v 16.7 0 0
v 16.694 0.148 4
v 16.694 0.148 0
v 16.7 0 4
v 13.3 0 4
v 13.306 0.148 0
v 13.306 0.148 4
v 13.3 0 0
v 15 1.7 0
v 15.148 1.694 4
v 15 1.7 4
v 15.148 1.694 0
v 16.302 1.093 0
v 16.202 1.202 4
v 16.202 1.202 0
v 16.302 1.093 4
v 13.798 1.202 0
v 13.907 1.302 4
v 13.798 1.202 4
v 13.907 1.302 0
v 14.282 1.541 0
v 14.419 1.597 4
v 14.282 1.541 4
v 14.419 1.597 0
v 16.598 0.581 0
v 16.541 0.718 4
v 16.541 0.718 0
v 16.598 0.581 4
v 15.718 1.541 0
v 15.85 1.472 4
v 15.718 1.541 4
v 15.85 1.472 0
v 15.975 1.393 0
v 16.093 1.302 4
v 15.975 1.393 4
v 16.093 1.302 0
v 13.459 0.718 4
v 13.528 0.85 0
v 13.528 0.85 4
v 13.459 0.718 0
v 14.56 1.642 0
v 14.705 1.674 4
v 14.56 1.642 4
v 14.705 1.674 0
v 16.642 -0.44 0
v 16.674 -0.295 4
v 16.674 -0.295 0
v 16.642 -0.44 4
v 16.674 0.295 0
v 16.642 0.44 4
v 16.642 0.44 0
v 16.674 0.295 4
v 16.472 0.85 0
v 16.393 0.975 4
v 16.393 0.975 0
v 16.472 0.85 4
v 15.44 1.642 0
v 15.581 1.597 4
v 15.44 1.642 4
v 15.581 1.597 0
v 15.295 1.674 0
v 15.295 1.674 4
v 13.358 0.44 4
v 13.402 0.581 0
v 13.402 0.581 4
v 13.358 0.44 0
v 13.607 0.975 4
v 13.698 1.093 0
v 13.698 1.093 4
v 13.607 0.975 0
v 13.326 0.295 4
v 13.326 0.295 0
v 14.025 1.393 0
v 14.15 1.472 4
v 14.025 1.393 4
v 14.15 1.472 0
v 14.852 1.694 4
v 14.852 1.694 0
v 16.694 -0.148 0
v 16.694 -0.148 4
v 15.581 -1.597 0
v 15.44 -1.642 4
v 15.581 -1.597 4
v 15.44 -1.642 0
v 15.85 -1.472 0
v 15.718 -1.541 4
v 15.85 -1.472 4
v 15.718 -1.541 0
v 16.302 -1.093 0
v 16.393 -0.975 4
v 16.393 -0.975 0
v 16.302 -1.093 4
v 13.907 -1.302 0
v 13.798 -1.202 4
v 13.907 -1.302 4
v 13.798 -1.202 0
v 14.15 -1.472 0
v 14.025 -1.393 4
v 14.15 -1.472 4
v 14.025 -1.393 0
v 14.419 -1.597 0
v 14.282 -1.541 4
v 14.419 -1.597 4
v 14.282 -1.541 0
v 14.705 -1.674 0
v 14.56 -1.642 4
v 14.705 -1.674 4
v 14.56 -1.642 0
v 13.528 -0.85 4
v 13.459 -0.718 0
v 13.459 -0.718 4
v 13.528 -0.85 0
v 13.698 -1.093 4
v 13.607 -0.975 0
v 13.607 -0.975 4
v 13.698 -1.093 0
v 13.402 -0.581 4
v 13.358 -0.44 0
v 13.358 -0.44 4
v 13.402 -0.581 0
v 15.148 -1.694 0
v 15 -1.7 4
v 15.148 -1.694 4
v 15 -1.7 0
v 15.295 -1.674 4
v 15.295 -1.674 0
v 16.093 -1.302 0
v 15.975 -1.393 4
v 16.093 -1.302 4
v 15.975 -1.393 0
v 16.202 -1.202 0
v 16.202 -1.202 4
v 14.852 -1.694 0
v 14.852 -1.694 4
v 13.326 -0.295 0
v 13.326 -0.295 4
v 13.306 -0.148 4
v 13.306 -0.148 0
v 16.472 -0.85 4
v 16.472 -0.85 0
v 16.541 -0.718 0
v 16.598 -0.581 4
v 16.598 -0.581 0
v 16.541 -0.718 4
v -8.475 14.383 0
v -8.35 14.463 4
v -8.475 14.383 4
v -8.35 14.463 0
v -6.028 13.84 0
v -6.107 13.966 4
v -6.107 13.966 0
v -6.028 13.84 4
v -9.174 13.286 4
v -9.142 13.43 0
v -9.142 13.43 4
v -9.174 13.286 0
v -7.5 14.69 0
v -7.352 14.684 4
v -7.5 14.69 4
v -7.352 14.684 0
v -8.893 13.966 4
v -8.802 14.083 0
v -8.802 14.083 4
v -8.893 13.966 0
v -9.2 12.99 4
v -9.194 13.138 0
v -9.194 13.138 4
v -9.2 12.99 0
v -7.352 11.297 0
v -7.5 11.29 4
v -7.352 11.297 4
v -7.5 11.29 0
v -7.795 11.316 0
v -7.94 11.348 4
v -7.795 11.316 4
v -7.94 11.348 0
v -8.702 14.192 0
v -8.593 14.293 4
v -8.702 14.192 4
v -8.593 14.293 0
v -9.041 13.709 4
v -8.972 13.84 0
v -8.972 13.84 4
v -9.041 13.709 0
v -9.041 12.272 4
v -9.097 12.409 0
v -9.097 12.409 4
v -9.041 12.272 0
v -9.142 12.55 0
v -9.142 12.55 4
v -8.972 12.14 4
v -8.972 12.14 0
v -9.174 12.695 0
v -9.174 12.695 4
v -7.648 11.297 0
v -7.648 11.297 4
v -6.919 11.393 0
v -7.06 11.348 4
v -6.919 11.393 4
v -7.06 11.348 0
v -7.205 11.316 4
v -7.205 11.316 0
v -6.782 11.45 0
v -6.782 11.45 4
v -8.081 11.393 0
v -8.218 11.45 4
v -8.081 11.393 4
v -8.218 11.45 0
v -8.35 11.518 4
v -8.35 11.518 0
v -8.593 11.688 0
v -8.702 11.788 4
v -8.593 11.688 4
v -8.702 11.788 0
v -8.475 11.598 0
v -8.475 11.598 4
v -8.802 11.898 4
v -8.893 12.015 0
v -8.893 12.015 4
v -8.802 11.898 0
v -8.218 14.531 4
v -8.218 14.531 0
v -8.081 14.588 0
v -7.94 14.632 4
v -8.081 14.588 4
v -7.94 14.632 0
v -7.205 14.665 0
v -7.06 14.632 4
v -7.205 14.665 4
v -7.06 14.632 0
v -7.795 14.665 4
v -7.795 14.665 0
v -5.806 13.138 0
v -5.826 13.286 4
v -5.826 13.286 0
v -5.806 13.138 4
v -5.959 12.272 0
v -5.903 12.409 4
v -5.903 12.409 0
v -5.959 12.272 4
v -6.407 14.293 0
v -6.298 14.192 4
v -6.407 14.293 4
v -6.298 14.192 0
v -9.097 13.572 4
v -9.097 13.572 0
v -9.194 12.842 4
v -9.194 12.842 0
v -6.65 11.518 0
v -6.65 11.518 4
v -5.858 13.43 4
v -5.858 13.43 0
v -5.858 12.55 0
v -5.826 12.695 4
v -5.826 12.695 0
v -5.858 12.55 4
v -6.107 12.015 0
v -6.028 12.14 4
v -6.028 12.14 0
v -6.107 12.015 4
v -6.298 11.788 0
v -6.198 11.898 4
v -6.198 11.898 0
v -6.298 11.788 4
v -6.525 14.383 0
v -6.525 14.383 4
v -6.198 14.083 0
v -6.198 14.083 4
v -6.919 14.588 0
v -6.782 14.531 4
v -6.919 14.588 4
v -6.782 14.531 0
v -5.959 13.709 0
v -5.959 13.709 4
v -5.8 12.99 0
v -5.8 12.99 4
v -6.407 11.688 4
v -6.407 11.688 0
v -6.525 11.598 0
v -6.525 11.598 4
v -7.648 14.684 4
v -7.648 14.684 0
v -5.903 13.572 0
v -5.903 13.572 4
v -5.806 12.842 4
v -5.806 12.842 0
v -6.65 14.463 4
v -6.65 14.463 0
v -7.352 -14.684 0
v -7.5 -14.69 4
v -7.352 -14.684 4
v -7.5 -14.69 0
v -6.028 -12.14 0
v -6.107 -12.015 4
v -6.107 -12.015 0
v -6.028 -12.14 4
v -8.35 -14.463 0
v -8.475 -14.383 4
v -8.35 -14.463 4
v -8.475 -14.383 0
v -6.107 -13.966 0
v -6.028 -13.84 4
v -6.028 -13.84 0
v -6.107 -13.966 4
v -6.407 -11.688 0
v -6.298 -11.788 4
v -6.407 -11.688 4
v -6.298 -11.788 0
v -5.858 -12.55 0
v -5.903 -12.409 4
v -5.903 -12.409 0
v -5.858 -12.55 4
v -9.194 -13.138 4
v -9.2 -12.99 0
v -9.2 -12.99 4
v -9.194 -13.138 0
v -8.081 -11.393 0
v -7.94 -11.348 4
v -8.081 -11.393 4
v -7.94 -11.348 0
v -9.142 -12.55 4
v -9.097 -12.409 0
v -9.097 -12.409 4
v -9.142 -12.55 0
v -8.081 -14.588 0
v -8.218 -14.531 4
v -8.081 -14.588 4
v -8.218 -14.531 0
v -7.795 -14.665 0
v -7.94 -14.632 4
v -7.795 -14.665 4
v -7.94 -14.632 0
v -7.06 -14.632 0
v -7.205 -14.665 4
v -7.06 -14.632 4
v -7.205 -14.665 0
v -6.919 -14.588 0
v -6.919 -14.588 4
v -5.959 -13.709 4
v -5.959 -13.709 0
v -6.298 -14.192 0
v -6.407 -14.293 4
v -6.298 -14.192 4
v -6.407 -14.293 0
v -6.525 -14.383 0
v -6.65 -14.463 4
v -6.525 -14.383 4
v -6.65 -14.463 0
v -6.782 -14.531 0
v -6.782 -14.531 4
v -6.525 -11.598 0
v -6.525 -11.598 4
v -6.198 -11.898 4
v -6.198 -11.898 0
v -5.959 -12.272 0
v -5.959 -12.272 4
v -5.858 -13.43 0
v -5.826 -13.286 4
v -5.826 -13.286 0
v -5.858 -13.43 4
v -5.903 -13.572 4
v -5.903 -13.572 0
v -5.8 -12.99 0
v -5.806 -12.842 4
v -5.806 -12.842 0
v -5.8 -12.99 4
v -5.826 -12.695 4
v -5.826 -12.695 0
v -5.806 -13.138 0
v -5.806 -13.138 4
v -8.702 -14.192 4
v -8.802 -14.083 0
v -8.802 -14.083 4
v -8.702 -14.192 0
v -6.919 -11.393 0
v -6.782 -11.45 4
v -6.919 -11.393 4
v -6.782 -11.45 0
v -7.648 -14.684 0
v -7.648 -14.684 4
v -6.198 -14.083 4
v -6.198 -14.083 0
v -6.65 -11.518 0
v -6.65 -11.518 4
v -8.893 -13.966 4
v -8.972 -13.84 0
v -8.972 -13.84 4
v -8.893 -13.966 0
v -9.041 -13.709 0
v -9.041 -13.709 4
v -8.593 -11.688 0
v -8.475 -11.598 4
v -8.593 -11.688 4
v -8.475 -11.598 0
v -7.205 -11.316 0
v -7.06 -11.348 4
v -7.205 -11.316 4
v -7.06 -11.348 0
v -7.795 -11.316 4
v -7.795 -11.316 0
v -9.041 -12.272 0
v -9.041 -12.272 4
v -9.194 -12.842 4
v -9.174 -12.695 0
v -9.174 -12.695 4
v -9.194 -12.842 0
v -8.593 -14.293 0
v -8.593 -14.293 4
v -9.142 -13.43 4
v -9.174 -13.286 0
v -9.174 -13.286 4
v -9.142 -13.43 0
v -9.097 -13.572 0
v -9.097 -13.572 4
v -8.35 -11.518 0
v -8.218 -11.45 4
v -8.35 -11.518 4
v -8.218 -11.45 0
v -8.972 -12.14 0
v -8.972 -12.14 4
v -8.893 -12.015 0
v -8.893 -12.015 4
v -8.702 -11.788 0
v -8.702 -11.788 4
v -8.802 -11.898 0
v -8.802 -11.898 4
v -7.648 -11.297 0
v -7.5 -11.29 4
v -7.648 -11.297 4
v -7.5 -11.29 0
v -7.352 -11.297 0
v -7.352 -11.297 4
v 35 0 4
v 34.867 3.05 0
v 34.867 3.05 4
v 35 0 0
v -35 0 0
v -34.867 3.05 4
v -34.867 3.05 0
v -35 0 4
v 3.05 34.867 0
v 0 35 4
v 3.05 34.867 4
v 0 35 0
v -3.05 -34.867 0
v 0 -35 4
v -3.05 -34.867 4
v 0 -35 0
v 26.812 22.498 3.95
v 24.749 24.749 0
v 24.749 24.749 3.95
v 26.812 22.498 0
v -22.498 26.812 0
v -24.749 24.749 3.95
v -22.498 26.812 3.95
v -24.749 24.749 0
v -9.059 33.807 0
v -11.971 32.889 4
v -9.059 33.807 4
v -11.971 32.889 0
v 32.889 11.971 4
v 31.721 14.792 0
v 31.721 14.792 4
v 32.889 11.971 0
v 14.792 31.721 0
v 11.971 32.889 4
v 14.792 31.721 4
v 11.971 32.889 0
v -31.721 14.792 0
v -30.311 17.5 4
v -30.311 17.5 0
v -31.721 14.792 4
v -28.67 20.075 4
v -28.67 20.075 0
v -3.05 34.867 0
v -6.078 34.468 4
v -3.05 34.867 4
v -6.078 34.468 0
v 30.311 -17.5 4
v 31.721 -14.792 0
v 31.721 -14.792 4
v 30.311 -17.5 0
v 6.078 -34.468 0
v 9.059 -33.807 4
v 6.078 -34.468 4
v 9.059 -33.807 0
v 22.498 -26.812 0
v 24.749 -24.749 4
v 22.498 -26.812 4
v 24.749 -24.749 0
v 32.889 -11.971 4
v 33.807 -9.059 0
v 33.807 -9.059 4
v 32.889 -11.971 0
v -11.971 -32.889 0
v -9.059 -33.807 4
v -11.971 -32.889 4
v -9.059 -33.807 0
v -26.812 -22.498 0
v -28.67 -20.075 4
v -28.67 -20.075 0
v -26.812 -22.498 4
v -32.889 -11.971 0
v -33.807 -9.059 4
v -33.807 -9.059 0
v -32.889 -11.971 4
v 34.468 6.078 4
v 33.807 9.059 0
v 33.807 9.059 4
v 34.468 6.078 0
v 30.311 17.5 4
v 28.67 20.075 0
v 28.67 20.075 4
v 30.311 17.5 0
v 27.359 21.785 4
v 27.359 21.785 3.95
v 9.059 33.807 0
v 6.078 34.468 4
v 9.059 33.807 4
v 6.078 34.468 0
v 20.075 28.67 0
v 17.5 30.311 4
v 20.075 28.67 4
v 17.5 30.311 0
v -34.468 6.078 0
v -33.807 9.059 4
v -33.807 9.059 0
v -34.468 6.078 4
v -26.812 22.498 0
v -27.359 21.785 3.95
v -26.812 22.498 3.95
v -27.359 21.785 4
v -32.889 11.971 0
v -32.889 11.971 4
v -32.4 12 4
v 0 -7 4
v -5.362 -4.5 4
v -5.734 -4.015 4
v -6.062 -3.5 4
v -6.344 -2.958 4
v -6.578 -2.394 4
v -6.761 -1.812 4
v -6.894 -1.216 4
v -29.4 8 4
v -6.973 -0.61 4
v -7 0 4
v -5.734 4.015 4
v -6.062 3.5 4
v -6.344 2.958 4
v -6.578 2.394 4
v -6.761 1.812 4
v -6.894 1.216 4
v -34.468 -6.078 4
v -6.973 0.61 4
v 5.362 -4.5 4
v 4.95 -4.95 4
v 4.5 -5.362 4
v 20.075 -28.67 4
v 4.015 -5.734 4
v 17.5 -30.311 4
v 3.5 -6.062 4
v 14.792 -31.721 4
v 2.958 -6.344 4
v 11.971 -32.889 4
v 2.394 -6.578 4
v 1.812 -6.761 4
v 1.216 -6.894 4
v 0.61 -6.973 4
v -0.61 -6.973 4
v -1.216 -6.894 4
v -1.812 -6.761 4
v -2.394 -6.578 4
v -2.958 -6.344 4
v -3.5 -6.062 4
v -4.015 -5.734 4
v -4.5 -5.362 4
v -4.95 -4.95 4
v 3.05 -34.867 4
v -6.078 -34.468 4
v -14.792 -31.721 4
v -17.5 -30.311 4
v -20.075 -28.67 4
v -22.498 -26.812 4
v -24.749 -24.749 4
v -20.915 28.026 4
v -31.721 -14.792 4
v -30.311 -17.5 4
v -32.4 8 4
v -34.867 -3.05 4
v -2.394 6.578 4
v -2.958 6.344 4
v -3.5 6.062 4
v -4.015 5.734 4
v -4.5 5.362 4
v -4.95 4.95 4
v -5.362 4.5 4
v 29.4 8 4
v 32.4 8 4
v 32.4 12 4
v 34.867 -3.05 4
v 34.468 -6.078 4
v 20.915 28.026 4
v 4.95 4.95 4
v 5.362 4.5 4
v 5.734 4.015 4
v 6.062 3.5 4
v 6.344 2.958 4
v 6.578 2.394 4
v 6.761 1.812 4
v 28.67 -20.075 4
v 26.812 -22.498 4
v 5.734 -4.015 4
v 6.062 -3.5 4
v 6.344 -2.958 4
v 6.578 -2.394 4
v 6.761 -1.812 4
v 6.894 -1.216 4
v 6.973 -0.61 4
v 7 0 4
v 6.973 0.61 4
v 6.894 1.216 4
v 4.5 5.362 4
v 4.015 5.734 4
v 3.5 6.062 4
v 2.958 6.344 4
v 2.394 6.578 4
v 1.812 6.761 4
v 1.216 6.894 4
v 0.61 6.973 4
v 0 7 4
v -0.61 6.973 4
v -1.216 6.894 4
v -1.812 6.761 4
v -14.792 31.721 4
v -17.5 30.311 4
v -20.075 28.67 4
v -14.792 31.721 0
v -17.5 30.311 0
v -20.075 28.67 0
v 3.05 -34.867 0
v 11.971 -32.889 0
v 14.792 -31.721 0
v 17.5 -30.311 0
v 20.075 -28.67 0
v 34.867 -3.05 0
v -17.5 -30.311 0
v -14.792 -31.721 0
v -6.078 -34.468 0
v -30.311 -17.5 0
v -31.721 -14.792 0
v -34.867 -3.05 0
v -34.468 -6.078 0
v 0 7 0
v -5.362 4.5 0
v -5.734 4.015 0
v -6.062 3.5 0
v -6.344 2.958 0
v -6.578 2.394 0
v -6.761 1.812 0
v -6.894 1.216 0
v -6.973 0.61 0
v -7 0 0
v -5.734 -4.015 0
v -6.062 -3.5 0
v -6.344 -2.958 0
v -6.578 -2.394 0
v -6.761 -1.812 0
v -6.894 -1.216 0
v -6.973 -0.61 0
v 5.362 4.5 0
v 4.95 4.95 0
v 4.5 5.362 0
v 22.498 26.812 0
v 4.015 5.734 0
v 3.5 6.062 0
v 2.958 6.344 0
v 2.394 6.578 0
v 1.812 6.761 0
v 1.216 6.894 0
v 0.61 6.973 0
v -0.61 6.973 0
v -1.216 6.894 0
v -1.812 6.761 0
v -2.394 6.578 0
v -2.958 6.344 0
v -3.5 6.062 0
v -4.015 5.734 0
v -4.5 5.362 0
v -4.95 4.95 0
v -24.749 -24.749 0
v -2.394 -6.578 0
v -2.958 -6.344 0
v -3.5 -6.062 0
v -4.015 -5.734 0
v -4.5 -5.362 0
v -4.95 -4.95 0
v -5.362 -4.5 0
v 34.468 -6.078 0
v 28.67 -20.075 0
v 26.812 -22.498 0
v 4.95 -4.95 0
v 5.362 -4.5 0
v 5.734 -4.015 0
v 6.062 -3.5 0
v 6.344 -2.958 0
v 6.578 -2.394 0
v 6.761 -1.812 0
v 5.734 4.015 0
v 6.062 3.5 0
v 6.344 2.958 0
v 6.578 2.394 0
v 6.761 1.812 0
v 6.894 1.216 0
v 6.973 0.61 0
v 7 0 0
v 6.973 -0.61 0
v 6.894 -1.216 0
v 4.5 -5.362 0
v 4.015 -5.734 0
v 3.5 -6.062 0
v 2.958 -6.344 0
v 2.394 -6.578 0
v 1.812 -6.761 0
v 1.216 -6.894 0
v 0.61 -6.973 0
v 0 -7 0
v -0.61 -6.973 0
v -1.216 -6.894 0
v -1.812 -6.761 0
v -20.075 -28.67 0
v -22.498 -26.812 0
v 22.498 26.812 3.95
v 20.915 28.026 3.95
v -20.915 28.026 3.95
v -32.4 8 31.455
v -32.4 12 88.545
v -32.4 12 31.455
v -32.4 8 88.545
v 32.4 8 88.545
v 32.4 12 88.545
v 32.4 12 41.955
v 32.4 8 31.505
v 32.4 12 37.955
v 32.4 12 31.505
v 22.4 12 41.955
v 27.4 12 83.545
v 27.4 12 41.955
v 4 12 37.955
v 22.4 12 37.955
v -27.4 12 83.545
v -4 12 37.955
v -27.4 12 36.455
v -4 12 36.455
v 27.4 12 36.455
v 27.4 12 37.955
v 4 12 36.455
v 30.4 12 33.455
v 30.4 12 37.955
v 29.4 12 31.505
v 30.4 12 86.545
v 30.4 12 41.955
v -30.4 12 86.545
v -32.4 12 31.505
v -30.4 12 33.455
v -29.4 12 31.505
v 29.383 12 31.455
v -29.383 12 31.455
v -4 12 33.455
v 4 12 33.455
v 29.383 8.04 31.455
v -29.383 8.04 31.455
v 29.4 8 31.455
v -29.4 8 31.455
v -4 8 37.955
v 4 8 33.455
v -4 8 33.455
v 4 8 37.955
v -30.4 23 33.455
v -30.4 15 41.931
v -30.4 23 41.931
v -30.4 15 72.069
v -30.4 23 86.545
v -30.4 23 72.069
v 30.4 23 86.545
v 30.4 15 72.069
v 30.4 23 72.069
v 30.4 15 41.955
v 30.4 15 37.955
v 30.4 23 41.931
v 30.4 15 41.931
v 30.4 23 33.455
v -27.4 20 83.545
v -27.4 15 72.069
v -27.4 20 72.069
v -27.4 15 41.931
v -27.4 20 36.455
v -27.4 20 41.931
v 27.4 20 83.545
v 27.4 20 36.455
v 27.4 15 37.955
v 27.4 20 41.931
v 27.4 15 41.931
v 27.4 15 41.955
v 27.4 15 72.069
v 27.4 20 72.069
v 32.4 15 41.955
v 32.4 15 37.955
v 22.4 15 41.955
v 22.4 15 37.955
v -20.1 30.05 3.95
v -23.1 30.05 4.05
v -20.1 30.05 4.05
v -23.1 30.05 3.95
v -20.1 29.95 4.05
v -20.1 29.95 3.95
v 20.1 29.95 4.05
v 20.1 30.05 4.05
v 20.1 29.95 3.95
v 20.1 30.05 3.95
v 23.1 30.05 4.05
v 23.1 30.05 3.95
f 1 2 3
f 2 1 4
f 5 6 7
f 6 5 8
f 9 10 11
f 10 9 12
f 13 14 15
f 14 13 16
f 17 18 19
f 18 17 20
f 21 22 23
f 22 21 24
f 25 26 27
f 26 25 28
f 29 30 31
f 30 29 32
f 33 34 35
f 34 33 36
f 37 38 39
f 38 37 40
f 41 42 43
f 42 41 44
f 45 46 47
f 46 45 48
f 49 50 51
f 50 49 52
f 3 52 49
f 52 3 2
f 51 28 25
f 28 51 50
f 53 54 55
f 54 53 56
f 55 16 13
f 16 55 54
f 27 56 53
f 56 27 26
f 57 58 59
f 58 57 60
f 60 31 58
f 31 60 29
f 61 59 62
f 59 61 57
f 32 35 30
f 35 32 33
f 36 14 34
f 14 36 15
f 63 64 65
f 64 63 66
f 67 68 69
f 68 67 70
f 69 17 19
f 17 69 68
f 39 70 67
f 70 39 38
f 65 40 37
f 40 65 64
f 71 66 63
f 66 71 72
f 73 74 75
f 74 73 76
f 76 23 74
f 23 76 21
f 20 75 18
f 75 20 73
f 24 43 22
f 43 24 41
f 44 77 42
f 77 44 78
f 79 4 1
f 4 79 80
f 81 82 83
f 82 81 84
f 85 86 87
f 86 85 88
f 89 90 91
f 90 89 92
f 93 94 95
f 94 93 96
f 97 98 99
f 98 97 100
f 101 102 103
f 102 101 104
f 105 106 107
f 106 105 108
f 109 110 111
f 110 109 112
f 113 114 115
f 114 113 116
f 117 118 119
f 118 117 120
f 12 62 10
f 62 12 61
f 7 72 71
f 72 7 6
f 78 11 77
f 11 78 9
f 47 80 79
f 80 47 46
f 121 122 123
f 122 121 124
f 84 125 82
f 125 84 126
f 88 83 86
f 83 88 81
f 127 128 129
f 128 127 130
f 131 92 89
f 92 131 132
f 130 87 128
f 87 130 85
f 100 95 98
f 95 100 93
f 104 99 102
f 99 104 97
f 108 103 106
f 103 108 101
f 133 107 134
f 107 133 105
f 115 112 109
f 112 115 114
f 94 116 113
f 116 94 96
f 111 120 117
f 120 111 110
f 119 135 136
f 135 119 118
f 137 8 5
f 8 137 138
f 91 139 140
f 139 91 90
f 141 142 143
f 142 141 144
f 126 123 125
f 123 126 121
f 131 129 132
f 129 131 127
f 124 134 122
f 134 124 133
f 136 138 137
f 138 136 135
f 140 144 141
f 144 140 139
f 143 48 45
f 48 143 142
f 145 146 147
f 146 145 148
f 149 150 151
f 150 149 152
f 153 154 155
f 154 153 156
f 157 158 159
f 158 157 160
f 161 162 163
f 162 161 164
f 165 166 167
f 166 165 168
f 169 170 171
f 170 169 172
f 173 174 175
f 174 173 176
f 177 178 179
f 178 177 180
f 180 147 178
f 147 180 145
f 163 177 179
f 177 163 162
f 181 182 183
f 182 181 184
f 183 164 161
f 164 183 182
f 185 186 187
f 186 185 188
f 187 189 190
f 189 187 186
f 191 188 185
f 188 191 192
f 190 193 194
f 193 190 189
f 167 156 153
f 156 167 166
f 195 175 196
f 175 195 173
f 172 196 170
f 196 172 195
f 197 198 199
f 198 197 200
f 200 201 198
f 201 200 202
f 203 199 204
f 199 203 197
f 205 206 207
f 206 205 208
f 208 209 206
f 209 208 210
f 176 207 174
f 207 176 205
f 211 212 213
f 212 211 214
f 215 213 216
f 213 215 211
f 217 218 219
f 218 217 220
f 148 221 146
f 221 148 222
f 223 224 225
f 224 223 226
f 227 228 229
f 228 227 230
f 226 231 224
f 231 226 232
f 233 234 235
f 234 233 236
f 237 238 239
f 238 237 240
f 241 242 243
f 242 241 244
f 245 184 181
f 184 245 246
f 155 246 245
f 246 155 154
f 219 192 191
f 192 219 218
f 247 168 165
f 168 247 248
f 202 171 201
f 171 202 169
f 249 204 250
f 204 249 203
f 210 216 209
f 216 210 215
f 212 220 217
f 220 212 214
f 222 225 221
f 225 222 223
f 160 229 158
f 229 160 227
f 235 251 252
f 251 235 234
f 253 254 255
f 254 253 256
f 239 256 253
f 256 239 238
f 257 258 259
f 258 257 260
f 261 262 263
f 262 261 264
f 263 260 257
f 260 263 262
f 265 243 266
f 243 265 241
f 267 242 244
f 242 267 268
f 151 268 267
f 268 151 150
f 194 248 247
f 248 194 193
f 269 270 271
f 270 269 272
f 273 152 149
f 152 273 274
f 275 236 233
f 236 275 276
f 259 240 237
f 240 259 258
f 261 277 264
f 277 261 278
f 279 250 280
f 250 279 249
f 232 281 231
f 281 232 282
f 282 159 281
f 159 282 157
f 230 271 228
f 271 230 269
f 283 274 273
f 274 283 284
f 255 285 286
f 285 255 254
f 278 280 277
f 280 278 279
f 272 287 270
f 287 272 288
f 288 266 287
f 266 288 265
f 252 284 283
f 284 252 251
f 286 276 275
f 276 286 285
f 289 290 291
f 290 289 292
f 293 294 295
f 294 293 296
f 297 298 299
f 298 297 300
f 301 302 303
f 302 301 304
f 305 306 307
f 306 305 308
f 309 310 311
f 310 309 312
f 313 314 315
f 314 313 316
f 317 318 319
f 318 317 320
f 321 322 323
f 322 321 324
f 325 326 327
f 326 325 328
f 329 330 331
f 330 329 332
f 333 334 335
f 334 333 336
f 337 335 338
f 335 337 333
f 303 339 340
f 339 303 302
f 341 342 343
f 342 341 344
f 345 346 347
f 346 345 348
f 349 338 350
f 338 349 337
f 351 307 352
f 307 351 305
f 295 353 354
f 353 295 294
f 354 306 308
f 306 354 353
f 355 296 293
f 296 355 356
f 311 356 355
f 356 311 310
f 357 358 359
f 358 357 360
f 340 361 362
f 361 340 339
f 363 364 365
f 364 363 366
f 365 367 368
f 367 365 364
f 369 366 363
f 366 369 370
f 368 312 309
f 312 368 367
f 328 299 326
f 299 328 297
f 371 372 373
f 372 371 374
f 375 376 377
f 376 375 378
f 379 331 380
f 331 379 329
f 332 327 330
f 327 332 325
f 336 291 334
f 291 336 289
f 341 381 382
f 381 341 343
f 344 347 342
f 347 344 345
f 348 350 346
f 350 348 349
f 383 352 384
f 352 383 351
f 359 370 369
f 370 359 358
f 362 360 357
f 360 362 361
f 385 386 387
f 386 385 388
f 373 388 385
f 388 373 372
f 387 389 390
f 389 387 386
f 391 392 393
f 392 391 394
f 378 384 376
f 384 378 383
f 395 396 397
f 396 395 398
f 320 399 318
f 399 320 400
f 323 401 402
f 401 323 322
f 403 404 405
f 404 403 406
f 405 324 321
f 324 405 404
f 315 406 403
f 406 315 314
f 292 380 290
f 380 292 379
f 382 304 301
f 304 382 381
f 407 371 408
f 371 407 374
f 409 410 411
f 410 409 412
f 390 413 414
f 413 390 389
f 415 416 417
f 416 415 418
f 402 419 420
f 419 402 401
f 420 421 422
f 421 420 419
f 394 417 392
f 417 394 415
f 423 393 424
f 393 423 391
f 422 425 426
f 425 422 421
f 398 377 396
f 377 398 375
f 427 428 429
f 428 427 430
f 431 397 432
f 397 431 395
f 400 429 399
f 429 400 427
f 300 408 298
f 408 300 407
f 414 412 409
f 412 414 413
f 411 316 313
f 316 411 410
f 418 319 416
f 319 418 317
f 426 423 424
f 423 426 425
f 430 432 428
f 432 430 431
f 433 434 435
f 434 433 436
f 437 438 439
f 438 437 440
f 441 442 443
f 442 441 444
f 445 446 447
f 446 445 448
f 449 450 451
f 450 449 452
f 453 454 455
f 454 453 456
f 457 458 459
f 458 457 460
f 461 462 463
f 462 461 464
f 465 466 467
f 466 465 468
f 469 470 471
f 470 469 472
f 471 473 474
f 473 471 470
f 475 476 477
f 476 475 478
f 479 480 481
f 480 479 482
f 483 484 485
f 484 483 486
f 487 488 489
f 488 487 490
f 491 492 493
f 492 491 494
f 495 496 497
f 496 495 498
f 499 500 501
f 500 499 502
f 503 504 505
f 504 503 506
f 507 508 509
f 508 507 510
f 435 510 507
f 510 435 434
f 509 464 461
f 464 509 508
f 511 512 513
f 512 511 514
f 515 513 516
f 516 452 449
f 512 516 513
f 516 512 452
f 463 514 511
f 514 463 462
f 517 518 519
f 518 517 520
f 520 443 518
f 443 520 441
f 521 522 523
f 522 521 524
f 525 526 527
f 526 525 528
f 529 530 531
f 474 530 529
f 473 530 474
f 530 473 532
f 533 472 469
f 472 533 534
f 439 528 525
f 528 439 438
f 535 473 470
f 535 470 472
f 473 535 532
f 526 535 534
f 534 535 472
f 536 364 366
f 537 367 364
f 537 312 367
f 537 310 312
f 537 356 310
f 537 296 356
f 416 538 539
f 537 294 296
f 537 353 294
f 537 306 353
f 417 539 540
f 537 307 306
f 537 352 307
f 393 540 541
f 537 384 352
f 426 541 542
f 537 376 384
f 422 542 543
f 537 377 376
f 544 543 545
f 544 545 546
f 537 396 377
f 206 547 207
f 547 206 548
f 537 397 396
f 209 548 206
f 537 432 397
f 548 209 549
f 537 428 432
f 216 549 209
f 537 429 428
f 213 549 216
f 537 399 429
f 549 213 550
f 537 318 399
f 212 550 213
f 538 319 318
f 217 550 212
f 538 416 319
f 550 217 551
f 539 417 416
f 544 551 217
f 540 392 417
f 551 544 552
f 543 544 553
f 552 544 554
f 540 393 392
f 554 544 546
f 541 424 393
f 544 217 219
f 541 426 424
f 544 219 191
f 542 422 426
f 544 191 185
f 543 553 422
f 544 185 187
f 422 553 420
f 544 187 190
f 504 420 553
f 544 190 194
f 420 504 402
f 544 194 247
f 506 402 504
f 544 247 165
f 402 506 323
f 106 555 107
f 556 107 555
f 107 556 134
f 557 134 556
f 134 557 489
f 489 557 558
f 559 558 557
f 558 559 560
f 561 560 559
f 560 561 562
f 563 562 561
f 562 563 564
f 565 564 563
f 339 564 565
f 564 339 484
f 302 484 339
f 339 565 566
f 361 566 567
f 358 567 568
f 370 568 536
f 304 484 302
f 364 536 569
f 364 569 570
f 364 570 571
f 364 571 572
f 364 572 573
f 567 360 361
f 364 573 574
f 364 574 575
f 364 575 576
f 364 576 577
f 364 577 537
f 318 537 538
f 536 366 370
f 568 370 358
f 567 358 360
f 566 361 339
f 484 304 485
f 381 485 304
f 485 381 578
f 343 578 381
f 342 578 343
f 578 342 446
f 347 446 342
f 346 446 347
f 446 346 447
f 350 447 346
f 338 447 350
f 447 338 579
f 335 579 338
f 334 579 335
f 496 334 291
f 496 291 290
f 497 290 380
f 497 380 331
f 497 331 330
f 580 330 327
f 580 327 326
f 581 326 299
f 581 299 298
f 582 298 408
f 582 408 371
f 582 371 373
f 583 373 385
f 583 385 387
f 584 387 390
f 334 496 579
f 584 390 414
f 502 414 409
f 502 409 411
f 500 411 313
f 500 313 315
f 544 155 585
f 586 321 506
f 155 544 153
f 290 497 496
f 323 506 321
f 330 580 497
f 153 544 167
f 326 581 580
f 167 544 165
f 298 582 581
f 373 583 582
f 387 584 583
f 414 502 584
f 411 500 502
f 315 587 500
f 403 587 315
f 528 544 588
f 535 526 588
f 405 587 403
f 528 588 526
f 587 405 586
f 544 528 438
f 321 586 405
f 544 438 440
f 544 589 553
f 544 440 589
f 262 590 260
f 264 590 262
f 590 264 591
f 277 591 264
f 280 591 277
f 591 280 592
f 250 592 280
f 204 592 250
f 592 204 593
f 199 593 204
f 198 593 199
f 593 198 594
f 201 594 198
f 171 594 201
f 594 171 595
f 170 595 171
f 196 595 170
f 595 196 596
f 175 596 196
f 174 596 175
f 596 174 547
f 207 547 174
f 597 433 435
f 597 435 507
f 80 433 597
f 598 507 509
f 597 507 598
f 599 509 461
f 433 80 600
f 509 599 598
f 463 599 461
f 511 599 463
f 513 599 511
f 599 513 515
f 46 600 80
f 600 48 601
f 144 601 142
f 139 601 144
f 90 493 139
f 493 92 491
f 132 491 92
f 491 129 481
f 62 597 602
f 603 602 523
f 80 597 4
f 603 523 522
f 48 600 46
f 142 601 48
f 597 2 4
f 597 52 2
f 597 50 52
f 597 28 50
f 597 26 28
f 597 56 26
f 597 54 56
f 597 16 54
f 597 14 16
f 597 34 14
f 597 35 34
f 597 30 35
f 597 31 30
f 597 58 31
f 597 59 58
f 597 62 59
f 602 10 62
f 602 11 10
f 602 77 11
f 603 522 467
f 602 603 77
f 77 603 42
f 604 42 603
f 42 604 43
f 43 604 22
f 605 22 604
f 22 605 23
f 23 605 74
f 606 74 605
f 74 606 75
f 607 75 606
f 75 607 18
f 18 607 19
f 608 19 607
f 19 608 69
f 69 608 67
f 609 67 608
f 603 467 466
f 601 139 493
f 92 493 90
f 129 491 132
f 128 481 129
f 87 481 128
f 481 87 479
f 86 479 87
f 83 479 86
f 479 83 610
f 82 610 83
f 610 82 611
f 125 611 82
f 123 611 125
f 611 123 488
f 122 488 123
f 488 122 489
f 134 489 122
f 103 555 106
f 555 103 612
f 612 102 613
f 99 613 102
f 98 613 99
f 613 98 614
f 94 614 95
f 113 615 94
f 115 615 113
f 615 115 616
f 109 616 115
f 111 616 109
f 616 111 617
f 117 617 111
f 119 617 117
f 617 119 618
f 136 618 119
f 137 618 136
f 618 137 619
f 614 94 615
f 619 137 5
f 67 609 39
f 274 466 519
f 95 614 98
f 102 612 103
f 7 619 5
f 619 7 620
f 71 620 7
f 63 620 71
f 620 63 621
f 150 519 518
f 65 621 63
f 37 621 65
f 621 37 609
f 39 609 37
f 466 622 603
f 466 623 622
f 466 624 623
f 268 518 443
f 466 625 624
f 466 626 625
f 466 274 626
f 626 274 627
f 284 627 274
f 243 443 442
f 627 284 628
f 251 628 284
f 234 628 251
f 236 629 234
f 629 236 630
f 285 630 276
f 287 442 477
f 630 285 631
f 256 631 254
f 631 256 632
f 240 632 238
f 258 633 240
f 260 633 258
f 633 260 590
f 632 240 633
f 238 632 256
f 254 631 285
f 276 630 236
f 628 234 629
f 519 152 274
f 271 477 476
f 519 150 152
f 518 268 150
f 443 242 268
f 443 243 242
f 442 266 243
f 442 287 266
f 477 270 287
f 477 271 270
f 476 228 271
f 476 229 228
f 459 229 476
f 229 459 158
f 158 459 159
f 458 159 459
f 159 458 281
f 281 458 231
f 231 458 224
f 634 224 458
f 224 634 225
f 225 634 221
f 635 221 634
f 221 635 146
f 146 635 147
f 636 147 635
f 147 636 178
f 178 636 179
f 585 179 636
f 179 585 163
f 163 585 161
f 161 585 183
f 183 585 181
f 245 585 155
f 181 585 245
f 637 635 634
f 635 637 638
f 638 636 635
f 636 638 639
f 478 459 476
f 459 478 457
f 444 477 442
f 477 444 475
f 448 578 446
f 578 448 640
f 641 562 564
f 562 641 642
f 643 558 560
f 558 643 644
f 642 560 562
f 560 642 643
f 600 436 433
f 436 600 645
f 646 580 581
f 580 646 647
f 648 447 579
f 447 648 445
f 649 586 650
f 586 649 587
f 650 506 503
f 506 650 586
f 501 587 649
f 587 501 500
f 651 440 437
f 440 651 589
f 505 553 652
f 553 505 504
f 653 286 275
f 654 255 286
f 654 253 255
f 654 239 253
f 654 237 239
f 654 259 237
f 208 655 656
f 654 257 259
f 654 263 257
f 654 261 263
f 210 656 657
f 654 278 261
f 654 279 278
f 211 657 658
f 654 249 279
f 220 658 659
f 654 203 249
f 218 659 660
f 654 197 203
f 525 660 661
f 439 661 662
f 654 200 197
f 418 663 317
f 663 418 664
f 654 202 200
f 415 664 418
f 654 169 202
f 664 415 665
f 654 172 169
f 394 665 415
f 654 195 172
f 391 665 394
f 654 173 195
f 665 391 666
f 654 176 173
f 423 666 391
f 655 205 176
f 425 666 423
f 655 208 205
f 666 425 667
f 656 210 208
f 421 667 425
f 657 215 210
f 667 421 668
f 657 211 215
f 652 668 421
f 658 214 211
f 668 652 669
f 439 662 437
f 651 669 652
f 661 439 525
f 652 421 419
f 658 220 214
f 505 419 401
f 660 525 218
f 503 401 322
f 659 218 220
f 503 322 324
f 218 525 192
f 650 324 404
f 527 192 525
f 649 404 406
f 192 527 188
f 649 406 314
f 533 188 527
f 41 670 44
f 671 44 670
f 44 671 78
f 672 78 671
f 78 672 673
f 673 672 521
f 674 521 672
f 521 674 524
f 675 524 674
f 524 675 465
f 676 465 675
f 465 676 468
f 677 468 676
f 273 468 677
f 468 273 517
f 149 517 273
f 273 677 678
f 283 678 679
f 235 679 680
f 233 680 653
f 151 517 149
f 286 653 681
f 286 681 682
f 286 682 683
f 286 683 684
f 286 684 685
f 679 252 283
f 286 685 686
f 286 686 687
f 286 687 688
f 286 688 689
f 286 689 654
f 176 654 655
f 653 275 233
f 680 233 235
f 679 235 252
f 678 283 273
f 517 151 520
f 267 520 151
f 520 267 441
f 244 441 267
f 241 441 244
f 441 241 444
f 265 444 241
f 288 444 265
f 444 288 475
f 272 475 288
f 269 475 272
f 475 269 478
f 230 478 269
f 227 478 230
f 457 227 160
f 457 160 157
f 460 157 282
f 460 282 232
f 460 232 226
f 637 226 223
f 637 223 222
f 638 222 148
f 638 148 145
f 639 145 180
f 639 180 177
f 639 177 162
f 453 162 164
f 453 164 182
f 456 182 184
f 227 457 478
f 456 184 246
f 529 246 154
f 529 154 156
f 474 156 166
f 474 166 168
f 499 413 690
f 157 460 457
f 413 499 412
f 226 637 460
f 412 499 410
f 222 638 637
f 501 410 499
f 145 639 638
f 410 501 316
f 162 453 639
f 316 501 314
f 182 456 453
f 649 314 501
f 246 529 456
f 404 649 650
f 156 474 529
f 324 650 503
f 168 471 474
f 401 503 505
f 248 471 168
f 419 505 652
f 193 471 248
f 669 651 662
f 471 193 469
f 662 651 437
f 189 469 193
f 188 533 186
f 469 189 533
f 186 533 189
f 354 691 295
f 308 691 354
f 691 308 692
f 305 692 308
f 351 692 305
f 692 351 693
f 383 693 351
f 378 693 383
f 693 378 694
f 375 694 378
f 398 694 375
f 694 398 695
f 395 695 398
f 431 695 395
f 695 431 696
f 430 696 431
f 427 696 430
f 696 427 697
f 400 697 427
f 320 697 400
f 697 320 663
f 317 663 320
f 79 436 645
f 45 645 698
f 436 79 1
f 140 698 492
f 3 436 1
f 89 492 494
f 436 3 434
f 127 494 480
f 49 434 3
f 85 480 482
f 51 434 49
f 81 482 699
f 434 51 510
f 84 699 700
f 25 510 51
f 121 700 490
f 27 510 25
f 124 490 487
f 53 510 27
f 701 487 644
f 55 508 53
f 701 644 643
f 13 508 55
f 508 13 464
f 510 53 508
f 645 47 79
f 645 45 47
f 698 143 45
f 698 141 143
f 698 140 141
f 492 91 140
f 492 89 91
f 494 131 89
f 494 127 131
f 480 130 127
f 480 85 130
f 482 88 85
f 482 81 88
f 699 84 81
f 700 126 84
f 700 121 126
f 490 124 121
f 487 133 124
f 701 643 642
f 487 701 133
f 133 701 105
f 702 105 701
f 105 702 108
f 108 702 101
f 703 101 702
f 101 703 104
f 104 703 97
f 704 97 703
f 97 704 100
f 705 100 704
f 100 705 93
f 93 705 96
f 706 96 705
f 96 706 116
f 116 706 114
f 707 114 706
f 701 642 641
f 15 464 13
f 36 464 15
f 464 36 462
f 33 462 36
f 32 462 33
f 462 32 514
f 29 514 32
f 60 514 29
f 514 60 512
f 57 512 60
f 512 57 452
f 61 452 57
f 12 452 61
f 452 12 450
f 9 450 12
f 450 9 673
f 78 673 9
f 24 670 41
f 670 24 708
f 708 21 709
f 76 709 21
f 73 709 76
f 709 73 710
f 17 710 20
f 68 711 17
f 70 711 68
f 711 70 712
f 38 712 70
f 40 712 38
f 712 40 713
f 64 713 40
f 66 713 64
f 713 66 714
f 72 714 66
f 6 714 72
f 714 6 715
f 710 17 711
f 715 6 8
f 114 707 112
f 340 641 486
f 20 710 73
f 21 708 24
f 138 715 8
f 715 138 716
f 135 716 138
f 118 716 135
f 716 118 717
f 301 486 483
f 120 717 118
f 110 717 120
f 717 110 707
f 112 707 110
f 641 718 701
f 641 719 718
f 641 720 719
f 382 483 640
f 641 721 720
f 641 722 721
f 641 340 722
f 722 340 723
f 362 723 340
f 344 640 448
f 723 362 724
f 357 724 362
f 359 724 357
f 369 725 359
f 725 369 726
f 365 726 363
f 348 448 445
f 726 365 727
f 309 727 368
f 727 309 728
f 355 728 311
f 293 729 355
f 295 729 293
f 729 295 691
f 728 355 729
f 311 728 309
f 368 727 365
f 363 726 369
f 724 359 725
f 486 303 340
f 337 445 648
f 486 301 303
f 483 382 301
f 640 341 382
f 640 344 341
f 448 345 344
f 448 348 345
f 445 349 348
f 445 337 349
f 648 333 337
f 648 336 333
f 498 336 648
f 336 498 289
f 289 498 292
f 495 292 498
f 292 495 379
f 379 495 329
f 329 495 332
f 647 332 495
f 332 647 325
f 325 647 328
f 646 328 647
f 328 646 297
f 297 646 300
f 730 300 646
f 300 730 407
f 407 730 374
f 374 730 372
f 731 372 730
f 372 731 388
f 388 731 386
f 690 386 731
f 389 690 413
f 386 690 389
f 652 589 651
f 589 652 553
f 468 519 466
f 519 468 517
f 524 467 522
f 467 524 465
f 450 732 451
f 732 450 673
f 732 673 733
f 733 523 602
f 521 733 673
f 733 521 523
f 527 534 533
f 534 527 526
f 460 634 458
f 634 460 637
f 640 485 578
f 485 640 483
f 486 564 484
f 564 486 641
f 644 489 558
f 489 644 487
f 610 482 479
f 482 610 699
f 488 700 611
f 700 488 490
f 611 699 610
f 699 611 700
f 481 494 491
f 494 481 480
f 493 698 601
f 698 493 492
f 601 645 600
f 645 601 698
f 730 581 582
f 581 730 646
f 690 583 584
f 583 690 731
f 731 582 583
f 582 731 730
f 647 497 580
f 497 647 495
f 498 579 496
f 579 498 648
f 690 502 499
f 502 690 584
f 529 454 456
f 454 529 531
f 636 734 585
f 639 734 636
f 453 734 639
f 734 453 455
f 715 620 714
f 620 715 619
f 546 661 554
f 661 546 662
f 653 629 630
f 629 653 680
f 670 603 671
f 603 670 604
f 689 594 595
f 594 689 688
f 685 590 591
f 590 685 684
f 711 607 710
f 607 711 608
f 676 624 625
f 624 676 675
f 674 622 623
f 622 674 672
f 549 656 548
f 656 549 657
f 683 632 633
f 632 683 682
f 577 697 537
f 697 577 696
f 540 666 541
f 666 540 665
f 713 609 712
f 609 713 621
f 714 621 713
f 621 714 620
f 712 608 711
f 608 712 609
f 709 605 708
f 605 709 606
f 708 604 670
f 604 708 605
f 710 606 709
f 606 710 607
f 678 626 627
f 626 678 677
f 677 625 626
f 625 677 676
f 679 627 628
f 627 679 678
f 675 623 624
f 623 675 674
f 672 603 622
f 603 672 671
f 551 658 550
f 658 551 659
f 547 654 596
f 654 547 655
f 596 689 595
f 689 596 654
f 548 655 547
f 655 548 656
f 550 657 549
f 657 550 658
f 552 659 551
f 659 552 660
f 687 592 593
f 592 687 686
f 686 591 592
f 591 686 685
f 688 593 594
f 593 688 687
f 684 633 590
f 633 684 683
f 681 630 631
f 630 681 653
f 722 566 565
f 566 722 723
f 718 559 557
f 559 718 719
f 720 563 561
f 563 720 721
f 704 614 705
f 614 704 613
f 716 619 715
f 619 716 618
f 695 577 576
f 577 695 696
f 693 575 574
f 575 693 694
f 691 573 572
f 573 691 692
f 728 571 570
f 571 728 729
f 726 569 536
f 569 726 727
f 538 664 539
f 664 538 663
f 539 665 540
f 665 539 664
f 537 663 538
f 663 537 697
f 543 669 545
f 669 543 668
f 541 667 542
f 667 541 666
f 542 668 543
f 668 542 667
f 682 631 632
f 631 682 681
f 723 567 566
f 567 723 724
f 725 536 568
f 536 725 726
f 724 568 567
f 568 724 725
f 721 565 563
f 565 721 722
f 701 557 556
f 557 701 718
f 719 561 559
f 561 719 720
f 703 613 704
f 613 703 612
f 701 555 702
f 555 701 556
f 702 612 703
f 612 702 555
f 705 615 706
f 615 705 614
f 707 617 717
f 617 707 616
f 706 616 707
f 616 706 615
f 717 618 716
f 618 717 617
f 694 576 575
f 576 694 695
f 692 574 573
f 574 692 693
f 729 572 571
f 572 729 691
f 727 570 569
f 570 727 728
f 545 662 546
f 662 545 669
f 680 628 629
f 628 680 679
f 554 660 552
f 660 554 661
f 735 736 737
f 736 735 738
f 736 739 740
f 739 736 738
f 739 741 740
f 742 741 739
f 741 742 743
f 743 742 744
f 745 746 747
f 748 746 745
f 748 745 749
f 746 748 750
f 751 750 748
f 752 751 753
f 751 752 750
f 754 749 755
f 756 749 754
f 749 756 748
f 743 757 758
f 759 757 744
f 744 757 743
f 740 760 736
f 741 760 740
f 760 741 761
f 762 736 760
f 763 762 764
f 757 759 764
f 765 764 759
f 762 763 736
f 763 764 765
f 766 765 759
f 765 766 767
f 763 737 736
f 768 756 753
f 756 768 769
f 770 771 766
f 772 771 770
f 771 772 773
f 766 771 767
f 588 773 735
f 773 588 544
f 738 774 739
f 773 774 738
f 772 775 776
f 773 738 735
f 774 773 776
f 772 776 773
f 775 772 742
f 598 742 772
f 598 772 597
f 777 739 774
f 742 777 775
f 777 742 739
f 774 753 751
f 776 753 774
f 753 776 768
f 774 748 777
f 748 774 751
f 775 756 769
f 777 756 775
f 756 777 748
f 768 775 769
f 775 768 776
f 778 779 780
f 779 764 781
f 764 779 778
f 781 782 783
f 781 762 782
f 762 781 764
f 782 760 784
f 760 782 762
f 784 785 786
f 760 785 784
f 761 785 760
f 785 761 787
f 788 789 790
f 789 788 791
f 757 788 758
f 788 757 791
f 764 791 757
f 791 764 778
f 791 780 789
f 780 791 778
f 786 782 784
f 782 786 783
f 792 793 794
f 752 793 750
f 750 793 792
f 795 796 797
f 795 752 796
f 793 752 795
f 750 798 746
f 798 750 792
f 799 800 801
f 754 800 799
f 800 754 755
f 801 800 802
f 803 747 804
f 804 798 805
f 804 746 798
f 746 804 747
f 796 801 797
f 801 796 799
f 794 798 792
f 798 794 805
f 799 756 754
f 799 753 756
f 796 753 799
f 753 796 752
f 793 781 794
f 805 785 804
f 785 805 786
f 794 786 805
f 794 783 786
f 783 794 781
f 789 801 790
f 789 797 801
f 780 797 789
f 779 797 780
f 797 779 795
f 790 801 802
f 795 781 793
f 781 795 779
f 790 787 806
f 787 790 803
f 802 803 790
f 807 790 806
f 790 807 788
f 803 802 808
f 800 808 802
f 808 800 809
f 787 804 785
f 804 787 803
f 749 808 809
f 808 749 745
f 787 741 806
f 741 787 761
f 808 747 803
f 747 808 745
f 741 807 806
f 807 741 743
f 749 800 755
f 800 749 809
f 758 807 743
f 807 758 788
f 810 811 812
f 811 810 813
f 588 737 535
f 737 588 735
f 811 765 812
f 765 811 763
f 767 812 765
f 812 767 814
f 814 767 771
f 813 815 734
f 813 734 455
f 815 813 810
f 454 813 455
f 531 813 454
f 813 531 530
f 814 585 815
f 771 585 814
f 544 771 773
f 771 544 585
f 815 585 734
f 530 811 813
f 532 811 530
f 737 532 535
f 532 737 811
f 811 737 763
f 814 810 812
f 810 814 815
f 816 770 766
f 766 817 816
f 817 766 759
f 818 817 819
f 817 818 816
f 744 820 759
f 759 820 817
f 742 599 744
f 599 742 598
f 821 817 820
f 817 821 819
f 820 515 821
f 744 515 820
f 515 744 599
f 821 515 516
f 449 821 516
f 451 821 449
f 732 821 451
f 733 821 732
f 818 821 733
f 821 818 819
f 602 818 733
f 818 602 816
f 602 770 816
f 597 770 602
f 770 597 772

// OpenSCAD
// =====================================================================
// PiLiDAR 2.0 — Parametrischer Halter für LDROBOT STL27L (USB-Variante)
// ---------------------------------------------------------------------
// KORREKTE AUSRICHTUNG (entscheidend für die Punktwolken-Geometrie):
//   Der STL27L wird AUF DER SEITE montiert -> Spinachse HORIZONTAL (Y),
//   Scan-Ebene VERTIKAL (X-Z). Der Stepper revolviert diese Ebene um die
//   senkrechte Z-Achse (siehe backend/pointcloud.py). Würde der LiDAR flach
//   liegen, wäre die Scan-Ebene horizontal -> es entstünde KEINE 3D-Wolke.
//
//   Koordinaten dieses Modells:  Z = oben (Drehachse), Y = Spinachse des
//   LiDAR (horizontal, weg von der Rückplatte), X = quer.
//
// Konstruktionsziele:
//   * Vertikale Rückplatte, an der die LiDAR-BODENPLATTE flächig anliegt.
//   * Klemmung nur am Sockel (untere ~8 mm der Bautiefe) -> das 360°-Optik-
//     fenster (Band um den rotierenden Kopf) bleibt frei (Datenblatt:
//     Verdeckung verschlechtert die Messung).
//   * Geringe Masse / wenig Material in der Scan-Ebene (Eigenverdeckung),
//     ruhige kontinuierliche Drehung (Modus B).
//   * Kabelführung ZH1.5T-4P + Zugentlastung; Kabel dreht mit.
//
// Maße aus STL-27L Datasheet V0.3 (morpheusTEK / LDROBOT):
//   Gehäuse 54.00(L) x 46.29(W) x 34.80(H) mm; Bohrbild-Toleranz ±0.2
//   5 V / 290 mA, UART 921600 (3.3 V), Stecker ZH1.5T-4P
//   Pinfolge: 1=Tx, 2=PWM, 3=GND, 4=VCC
//
// HINWEIS: Exaktes Boden-Bohrbild steht nur in der Datenblatt-Zeichnung
// (Bild, S.6). Die Schraubloch-Parameter sind ANNAHMEN -> vor dem Druck
// prüfen. Die Sockelklemme hält auch ohne Schrauben.
// =====================================================================

/* [LiDAR-Körper] */
lidar_base_x = 54.00;   // Bodenplatte Länge  (-> X)
lidar_base_z = 46.29;   // Bodenplatte Breite (-> Z, vertikal)
lidar_depth  = 34.80;   // Bautiefe entlang Spinachse (-> Y)
grip_depth   = 8.0;     // wie tief (in Y) der Sockel umfasst wird
fit_clear    = 0.4;     // Druckpassung

/* [Optische Freistellung] */
window_margin = 2.0;    // Sicherheitsabstand der Klemme zum Fensterband

/* [Schraubmontage Boden -> Rückplatte — ANNAHME, bitte prüfen] */
use_screws    = false;
screw_pitch_x = 35.0;   // Lochabstand in X  (ANNAHME)
screw_pitch_z = 35.0;   // Lochabstand in Z  (ANNAHME)
screw_d       = 2.7;    // Durchgang M2.5

/* [Rückplatte] */
back_t   = 4.0;         // Dicke der Rückplatte (in Y)
back_pad = 5.0;         // Rand um die LiDAR-Bodenplatte

/* [Rotor-Grundplatte / Plattform] */
plate_d  = 70.0;        // Durchmesser
plate_t  = 4.0;         // Dicke
rotor_bolt_circle = 30.0;
rotor_bolt_d = 3.4;     // M3
rotor_bolt_n = 3;

/* [Versatz LiDAR-Zentrum zur Drehachse] (vgl. config GEOMETRY) */
center_height = 60.0;   // Höhe des LiDAR-Zentrums über der Grundplatte (Z)
axis_offset_y = 8.0;    // Versatz der Rückplatte von der Drehachse in Y

/* [Kabel/Stecker] */
cable_slot_w = 8.0;
cable_slot_h = 4.5;
strain_relief = true;

wall = 3.0;
$fn = 72;

bx = lidar_base_x + 2*fit_clear;   // Innenmaß X
bz = lidar_base_z + 2*fit_clear;   // Innenmaß Z
plate_w = bx + 2*back_pad;         // Rückplatte Breite (X)
plate_h = bz + 2*back_pad;         // Rückplatte Höhe (Z)

// ---------------------------------------------------------------------
module rotor_plate() {
    difference() {
        cylinder(d = plate_d, h = plate_t);
        for (i = [0:rotor_bolt_n-1])
            rotate([0,0,i*360/rotor_bolt_n])
              translate([rotor_bolt_circle/2,0,-1])
                cylinder(d = rotor_bolt_d, h = plate_t+2);
        translate([0,0,-1]) cylinder(d = 14, h = plate_t+2); // Kabel/Gewicht
    }
}

// Vertikale Rückplatte (Ebene X-Z), Vorderseite bei y = axis_offset_y
module back_plate() {
    z0 = center_height - plate_h/2;
    translate([-plate_w/2, axis_offset_y, z0])
        difference() {
            cube([plate_w, back_t, plate_h]);
            // Schrauben in die LiDAR-Bodenplatte (ANNAHME)
            if (use_screws)
                for (sx=[-1,1], sz=[-1,1])
                    translate([plate_w/2 + sx*screw_pitch_x/2, -1,
                               plate_h/2 + sz*screw_pitch_z/2])
                        rotate([-90,0,0]) cylinder(d=screw_d, h=back_t+2);
            // Kabeldurchlass (Stecker an der LiDAR-Bodenplatte)
            translate([plate_w/2 - cable_slot_w/2, -1, 2])
                cube([cable_slot_w, back_t+2, cable_slot_h]);
        }
}

// Sockelklemme: U-Rahmen, der die unteren grip_depth (Y) des LiDAR umfasst
module base_clamp() {
    z0 = center_height - bz/2;
    y0 = axis_offset_y + back_t;            // direkt vor der Rückplatte
    // Außenrahmen
    translate([-bx/2 - wall, y0, z0 - wall])
        difference() {
            cube([bx + 2*wall, grip_depth + wall, bz + 2*wall]);
            // Innentasche für den LiDAR-Körper
            translate([wall, -1, wall])
                cube([bx, grip_depth + 1, bz]);
            // große seitliche Fenster, damit nichts in die Scan-Ebene ragt
            translate([-1, wall, bz*0.18])
                cube([bx + 2*wall + 2, grip_depth, bz*0.64]);
        }
    // Zugentlastung am Kabelaustritt
    if (strain_relief)
        translate([bx/2 - cable_slot_w/2 - 1, y0, z0 + 1.5])
            cube([cable_slot_w + 2, 3, 4]);
}

// Schräge Streben Rückplatte -> Grundplatte (Stabilität, geringe Masse)
module gussets() {
    for (sx = [-1, 1])
        translate([sx*(plate_w/2 - wall), axis_offset_y, plate_t])
            rotate([0,0,0])
            linear_extrude(height = 0.001) {}
    // einfache dreieckige Streben
    for (sx = [-1, 1])
        hull() {
            translate([sx*(plate_w/2 - wall/2), axis_offset_y + back_t/2, plate_t])
                cube([wall, back_t, 0.1], center=true);
            translate([sx*(plate_w/2 - wall/2), axis_offset_y + back_t/2,
                       center_height - plate_h/2])
                cube([wall, back_t, 0.1], center=true);
            translate([sx*(plate_w/3), axis_offset_y + 22, plate_t])
                cube([wall, 0.1, 0.1], center=true);
        }
}

module mount() {
    rotor_plate();
    back_plate();
    base_clamp();
    gussets();
}

mount();

// =====================================================================
// EINBAU / AUSRICHTUNG (auch in der Doku, mit Skizze):
//   * Z = senkrecht = Drehachse des Stepper-Rotors.
//   * LiDAR-Bodenplatte liegt an der Rückplatte (steht senkrecht).
//   * Spinachse des LiDAR zeigt horizontal nach +Y (weg von der Platte).
//   * 360°-Optikfenster muss rundum frei sein -> nach Einbau im
//     Lidar-Only-/2D-Live-Modus prüfen.
//   * Stecker ZH1.5T-4P an der Bodenplatte -> Kabel durch Kanal nach unten,
//     mitdrehende Zugentlastung.
// Druck: PETG, 3–4 Wände, 30–40% Infill, 0.2 mm; Rückplatte flach auf das Bett
//   legen (Aussparungen ggf. mit minimalen Stützen).
// =====================================================================
